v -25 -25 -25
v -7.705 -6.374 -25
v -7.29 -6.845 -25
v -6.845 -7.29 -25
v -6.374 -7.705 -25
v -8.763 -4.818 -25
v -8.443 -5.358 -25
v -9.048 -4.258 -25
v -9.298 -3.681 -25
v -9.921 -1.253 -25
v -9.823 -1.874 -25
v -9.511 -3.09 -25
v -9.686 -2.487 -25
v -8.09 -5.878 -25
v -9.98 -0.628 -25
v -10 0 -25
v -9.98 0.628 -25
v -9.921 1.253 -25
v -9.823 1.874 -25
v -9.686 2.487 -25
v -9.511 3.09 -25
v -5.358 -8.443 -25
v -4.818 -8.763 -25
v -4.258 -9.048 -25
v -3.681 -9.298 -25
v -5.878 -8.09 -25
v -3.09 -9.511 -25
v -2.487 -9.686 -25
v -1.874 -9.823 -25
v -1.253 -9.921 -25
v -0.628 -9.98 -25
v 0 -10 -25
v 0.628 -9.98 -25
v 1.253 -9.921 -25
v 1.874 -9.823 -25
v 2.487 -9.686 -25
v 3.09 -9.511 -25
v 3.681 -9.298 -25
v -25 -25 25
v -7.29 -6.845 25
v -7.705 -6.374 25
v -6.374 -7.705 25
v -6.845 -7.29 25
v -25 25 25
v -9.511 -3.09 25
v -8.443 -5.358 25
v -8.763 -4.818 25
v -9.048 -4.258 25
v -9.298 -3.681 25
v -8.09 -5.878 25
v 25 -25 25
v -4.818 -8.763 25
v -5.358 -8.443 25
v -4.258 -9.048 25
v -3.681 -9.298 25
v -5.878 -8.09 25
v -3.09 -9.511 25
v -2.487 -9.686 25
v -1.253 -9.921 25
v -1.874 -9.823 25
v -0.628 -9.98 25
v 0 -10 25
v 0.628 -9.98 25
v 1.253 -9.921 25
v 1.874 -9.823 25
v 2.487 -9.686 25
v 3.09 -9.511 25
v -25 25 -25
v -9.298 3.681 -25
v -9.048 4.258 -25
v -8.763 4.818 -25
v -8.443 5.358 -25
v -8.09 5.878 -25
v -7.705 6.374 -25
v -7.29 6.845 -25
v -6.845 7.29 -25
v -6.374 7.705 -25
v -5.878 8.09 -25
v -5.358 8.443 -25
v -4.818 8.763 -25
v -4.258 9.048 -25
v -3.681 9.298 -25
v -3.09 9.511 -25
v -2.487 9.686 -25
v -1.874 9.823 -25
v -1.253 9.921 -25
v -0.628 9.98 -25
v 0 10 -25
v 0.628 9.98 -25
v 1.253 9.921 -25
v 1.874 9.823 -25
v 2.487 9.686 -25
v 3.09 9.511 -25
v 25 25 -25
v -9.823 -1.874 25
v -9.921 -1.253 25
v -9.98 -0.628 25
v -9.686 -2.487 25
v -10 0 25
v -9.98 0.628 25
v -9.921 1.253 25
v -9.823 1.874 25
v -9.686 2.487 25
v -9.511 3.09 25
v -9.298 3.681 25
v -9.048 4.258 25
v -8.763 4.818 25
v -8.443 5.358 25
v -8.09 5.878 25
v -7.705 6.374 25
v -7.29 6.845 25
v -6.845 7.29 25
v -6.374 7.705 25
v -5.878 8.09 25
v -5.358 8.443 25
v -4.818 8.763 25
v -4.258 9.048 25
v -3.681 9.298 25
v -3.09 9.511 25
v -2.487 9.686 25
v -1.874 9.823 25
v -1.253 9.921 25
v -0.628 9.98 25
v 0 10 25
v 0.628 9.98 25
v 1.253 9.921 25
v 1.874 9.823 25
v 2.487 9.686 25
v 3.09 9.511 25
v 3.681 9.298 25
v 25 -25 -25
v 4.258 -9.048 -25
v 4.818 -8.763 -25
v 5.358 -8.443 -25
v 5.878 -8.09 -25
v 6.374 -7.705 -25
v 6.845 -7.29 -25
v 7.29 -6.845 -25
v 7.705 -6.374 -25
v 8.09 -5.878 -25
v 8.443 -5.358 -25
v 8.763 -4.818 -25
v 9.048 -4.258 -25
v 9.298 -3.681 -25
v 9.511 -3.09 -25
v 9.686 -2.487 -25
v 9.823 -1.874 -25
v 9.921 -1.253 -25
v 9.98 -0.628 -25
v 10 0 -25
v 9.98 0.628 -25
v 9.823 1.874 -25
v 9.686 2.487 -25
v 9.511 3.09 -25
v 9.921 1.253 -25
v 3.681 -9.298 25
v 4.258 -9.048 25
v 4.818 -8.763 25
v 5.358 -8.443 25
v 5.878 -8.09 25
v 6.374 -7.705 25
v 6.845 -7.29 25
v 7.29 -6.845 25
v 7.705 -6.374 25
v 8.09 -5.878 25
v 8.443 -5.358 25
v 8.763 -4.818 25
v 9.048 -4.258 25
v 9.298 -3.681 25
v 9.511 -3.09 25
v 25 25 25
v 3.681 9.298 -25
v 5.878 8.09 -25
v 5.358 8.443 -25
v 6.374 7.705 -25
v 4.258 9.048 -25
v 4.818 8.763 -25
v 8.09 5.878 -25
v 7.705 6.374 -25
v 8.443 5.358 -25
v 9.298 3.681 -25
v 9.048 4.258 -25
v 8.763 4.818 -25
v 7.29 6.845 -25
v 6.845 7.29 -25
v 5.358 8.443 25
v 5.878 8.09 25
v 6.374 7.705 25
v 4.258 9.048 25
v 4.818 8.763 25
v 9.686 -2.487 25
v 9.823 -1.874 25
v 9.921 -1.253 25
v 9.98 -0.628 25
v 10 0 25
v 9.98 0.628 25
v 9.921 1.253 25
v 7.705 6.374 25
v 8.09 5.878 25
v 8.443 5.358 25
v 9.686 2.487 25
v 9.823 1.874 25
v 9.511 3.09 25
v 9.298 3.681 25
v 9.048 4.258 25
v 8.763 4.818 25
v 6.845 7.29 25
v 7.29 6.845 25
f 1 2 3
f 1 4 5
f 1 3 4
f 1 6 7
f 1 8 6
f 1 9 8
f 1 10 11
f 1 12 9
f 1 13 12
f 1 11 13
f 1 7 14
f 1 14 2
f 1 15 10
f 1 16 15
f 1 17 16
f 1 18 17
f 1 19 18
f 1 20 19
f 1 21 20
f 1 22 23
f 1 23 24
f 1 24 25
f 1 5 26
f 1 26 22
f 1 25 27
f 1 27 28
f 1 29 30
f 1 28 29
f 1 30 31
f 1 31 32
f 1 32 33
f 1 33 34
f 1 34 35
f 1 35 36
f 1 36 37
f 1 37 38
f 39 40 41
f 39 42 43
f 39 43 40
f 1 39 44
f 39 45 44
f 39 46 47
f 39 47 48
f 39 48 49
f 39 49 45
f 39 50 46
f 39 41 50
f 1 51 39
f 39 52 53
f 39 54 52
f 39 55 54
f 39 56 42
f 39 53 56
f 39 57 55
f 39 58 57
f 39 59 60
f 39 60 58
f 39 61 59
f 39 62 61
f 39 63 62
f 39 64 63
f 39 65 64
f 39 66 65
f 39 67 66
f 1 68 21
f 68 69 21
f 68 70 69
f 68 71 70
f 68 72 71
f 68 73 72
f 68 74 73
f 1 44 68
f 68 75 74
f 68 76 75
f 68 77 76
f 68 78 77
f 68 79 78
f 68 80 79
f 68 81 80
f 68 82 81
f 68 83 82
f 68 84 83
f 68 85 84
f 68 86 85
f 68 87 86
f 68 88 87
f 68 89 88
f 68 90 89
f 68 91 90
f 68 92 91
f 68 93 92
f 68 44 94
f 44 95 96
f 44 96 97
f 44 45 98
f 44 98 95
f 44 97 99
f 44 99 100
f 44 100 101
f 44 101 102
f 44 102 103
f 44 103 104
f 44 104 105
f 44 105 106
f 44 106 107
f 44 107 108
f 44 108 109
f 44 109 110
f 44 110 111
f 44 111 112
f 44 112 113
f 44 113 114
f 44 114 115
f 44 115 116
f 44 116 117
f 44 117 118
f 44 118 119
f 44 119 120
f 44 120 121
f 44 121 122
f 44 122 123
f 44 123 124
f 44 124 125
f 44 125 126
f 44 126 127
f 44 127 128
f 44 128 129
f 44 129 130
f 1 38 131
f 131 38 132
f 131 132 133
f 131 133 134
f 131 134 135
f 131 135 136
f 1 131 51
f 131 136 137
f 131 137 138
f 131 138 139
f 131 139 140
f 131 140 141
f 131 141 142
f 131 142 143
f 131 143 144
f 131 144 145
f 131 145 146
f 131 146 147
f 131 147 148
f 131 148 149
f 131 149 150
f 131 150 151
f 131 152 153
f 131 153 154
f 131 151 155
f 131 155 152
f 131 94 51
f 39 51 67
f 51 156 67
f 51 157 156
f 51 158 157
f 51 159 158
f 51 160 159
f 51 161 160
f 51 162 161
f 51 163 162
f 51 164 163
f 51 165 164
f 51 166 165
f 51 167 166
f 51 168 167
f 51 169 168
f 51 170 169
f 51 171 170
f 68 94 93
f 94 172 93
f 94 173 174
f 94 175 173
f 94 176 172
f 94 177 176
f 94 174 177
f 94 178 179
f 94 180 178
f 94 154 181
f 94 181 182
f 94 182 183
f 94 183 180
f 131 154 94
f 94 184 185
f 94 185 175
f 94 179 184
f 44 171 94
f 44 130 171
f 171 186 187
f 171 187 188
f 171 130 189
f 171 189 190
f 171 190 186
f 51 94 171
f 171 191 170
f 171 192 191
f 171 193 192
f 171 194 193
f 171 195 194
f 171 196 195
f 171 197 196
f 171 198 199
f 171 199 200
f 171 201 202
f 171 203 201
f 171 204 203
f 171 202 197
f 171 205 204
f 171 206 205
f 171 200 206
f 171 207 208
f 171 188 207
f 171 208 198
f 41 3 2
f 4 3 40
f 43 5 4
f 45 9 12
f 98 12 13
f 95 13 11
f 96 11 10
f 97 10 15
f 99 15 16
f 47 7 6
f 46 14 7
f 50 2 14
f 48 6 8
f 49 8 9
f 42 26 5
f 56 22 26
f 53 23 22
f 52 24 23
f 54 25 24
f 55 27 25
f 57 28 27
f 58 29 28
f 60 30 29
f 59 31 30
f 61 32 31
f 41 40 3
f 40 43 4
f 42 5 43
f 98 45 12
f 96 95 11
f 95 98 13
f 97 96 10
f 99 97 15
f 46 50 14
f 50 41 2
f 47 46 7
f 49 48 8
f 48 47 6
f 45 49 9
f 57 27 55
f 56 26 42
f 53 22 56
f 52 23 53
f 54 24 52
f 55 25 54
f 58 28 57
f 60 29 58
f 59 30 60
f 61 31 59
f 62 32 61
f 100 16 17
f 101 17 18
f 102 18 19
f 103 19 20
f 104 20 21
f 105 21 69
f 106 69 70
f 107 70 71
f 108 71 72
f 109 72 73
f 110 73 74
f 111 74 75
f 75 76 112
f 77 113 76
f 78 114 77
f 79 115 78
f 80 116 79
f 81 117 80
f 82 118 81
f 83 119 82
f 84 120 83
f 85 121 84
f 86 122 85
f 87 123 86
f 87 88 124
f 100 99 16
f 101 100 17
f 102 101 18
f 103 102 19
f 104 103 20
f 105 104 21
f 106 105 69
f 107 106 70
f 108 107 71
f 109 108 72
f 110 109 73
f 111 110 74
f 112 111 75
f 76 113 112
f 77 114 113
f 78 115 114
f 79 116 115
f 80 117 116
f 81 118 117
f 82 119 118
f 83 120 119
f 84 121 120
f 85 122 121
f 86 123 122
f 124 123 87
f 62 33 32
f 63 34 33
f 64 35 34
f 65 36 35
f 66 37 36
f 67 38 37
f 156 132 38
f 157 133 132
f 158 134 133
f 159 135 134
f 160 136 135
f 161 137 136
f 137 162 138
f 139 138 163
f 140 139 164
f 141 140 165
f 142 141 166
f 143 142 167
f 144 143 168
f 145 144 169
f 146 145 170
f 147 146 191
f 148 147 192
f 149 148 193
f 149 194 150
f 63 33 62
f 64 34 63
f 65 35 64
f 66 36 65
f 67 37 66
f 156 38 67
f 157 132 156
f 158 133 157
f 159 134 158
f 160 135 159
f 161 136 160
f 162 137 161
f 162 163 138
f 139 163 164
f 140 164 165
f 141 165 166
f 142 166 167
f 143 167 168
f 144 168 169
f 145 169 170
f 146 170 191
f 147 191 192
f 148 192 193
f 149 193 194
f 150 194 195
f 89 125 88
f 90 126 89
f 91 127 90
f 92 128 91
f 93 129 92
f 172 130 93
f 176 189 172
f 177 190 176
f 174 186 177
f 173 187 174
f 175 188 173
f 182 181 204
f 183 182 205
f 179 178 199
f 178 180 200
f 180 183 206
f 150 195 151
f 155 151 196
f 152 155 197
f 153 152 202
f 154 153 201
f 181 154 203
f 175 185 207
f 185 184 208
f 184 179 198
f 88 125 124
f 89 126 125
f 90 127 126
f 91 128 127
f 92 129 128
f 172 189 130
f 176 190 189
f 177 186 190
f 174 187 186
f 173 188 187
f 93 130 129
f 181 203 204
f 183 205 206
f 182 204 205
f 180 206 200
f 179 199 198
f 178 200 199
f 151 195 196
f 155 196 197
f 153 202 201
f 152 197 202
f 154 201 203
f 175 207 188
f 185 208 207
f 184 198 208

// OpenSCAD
$fn = 100;

difference() {
    cube(50, center = true);
    cylinder(h = 52, d = 20, center = true);
}
